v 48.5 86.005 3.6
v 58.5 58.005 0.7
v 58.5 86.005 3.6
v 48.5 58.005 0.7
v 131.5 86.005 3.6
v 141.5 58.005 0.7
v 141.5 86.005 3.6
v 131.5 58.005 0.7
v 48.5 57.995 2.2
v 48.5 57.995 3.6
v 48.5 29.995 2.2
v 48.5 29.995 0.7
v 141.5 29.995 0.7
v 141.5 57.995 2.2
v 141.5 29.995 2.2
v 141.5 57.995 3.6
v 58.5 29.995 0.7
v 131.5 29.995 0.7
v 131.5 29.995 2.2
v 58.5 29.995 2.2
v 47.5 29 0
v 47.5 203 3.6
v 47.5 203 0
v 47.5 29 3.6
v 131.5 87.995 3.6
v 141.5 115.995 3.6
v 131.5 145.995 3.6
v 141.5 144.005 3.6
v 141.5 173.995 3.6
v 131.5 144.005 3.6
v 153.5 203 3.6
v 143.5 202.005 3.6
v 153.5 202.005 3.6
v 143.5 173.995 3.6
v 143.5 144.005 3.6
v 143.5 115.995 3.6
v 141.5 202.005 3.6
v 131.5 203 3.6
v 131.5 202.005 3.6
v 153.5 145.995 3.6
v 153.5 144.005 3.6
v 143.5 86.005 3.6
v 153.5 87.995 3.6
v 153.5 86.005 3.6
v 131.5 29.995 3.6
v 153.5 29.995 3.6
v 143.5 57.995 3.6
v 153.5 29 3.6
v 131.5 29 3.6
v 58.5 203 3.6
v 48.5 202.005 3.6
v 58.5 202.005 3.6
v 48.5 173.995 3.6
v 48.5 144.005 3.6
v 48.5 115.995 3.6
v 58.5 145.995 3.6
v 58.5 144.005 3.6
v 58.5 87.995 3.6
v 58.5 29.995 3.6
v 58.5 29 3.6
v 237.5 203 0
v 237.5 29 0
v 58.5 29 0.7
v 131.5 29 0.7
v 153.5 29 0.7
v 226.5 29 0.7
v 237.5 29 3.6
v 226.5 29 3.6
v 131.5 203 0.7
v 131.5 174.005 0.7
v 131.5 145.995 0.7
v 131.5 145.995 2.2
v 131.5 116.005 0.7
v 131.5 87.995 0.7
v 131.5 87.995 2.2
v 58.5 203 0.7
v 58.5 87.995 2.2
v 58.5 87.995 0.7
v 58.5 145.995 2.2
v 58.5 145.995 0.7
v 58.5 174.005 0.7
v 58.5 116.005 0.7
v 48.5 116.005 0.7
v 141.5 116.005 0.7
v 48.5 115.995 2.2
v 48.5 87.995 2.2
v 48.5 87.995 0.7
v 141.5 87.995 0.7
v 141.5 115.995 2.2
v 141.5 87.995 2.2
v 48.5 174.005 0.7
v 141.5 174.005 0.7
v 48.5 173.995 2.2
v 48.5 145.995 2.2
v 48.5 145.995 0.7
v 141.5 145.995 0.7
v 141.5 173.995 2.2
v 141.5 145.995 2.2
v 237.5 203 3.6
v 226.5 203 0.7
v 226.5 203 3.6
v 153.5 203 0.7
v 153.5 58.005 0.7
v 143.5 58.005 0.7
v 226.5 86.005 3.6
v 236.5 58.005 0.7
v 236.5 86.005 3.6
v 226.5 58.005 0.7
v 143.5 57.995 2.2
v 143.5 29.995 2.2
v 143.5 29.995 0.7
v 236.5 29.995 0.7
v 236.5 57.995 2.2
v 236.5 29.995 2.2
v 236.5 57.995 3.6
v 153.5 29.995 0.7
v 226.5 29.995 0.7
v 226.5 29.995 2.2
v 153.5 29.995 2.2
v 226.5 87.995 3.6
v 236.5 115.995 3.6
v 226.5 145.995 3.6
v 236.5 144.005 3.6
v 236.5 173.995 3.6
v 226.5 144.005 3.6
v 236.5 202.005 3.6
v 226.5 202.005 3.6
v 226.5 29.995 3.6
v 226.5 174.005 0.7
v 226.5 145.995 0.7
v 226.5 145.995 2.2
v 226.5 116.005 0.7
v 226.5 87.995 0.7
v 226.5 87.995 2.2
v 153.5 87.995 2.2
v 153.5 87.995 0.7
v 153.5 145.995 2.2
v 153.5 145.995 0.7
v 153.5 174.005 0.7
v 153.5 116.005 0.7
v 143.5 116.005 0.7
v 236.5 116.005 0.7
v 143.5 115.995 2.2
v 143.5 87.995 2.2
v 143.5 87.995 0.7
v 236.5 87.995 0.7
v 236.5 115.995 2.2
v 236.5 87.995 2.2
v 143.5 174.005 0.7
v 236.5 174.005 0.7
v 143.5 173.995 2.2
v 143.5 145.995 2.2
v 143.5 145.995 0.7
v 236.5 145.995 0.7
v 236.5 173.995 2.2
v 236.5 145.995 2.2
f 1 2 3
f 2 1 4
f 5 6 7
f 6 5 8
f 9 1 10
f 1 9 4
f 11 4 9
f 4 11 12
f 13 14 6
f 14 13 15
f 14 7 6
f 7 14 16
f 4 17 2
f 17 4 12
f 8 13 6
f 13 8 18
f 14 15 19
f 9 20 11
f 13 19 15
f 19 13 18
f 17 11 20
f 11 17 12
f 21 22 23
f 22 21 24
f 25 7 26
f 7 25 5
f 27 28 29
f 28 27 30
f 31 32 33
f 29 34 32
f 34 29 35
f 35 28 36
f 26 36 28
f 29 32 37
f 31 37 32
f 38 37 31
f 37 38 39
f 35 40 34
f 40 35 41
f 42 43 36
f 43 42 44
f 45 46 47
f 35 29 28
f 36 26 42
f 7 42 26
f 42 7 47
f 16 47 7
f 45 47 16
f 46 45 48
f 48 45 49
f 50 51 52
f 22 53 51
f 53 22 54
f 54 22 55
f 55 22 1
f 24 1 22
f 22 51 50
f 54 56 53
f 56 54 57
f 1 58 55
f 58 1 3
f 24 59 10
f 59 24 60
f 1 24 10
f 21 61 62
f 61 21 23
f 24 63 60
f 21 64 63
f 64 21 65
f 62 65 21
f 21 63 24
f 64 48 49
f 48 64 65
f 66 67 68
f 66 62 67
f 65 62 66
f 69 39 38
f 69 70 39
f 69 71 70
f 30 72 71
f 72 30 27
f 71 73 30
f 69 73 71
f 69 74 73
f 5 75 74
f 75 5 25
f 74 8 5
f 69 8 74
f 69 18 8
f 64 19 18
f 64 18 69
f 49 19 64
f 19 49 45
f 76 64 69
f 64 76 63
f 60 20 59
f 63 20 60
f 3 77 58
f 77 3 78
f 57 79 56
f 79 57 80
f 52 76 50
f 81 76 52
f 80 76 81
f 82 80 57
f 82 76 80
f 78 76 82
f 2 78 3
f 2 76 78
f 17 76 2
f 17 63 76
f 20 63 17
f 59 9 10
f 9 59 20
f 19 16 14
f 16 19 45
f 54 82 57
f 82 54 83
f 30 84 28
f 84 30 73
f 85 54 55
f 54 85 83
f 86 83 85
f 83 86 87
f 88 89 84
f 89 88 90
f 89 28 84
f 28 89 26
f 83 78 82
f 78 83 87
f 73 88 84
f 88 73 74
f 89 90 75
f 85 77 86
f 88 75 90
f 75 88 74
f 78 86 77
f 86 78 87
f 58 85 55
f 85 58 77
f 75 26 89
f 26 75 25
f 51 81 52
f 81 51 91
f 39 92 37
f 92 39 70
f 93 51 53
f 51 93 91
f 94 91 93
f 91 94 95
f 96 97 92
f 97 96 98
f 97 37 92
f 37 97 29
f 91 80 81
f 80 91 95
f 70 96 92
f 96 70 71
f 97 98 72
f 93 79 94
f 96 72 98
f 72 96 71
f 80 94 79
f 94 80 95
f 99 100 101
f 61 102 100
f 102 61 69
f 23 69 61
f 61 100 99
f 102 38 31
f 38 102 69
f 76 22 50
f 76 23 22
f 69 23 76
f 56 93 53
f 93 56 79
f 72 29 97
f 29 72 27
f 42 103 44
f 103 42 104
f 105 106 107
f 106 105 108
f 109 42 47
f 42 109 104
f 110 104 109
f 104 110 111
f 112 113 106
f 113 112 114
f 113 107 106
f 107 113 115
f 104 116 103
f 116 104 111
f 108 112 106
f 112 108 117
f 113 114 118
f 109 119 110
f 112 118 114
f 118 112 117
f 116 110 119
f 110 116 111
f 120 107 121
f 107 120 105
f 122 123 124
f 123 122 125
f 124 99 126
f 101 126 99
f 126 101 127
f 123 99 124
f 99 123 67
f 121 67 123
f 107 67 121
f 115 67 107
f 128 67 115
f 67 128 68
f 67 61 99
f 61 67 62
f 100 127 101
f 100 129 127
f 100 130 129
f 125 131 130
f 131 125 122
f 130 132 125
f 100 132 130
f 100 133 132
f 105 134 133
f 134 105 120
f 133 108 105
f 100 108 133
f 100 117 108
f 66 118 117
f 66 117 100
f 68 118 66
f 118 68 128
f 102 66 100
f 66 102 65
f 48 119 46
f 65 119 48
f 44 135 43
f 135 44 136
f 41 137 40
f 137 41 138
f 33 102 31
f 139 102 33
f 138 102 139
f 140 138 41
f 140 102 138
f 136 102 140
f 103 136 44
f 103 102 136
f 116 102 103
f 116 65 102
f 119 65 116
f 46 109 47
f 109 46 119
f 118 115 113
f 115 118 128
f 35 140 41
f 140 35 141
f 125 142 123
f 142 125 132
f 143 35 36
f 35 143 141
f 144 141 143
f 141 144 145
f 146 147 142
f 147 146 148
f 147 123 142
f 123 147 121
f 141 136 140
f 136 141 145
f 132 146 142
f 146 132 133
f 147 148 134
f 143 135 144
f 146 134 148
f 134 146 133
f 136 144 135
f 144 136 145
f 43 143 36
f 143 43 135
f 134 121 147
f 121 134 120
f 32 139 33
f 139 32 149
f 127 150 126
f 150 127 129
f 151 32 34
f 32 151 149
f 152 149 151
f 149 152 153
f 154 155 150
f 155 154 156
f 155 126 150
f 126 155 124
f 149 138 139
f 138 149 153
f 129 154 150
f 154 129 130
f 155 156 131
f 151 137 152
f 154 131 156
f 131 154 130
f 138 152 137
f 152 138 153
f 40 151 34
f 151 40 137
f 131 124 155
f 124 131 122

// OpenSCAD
// Wall Mounted Single Card Holder
// By Brian Khuu 2022-04-10

print_layer_height = 0.2;

// Businesscard
// Default values based on https://www.mbe.com.au/what-is-the-standard-business-card-size-in-australia/
businesscard_width = 93; // 90mm but some in real life are more like 91mm (Plus 0.5 tol )
businesscard_height = 56; // 55mm (add 0.5mm tol)
businesscard_thickness = 1.5; // 0.25mm for thin paper cards. 0.8mm for thick plastic cards. We need to add extra thickness to account for layer droop

// Holder
wall_spacing = 2; // 2mm chosen so there is at least 1mm walls at minimum which is important for thicker nozzles
wall_card_grip = 20;
wall_x_count = 2; //2
wall_y_count = 3; //3

// Calc
wall_base = print_layer_height*3+0.1;
wall_top = print_layer_height*3+0.1;
wall_height = wall_base + businesscard_thickness + wall_top*2;


module cardWindowOutline()
{
    hull()
    {
        translate([0,businesscard_height/2,businesscard_thickness + wall_top*2])
        cube([businesscard_width, 0.01, 0.01], center = true);
        translate([0,0,0])
        cube([businesscard_width, 0.01, 0.01], center = true);
    }    
    hull()
    {
        translate([0,0,businesscard_thickness + wall_top*2])
        cube([businesscard_width, 0.01, 0.01], center = true);
        translate([0,-businesscard_height/2,0])
        cube([businesscard_width-wall_card_grip, 0.01, 0.01], center = true);
    }
}

module cardholder(reducePlastic=false)
{
    if (1)
    translate([0,0,wall_base+businesscard_thickness])
        rotate([2,0,0])
        %cube([85, 54, 0.1], center = true);

    difference()
    {
        translate([0,0,wall_height/2])
            cube([businesscard_width+wall_spacing, businesscard_height+wall_spacing, wall_height], center = true);
        
        // Card Slide
        translate([0,0,wall_base])
        translate([0,0,businesscard_thickness/2])
        {
            // Upper
            hull()
            {
                translate([0,businesscard_height/2,businesscard_thickness + wall_top*2])
                cube([businesscard_width, 0.01, businesscard_thickness], center = true);
                
                translate([0,0,0])
                cube([businesscard_width, 0.01, businesscard_thickness], center = true);
            }
            // Lower
            hull()
            {
                translate([0,-businesscard_height/2,0])
                cube([businesscard_width, 0.01, businesscard_thickness], center = true);
                
                cube([businesscard_width, 0.01, businesscard_thickness], center = true);
            }
        }
        
        // Grip
        translate([0,0,wall_height/2+wall_base])
            hull()
            {
                translate([0,businesscard_height,0])
                cube([businesscard_width-wall_card_grip, 0.01, wall_height], center = true);
                
                translate([0,-businesscard_height,0])
                cube([businesscard_width-wall_card_grip, 0.01, wall_height], center = true);
            }
        
        
        // Card Window
        translate([0,0,wall_base+businesscard_thickness/2])
        {
            hull()
            {
                // Card Window Base
                cardWindowOutline();
                // Card Window Top
                translate([0,0,businesscard_thickness + wall_top * 2])
                    cardWindowOutline();
            }
        }
        
        // Reduce Plastic
        if (reducePlastic)
        translate([0,0,wall_base+businesscard_thickness/2+0.5])
        {
            cube([businesscard_width-wall_card_grip,businesscard_height-10, wall_height+1], center=true);
        }
    }
}

if (wall_x_count == 1 && wall_y_count == 1)
{
    cardholder(true);
}
else
{
    for (x = [1: 1 : wall_x_count])
        for (y = [1 : 1 : wall_y_count])
           translate([x*(businesscard_width+wall_spacing), y*(businesscard_height+wall_spacing), 0])
                cardholder(false);
}
